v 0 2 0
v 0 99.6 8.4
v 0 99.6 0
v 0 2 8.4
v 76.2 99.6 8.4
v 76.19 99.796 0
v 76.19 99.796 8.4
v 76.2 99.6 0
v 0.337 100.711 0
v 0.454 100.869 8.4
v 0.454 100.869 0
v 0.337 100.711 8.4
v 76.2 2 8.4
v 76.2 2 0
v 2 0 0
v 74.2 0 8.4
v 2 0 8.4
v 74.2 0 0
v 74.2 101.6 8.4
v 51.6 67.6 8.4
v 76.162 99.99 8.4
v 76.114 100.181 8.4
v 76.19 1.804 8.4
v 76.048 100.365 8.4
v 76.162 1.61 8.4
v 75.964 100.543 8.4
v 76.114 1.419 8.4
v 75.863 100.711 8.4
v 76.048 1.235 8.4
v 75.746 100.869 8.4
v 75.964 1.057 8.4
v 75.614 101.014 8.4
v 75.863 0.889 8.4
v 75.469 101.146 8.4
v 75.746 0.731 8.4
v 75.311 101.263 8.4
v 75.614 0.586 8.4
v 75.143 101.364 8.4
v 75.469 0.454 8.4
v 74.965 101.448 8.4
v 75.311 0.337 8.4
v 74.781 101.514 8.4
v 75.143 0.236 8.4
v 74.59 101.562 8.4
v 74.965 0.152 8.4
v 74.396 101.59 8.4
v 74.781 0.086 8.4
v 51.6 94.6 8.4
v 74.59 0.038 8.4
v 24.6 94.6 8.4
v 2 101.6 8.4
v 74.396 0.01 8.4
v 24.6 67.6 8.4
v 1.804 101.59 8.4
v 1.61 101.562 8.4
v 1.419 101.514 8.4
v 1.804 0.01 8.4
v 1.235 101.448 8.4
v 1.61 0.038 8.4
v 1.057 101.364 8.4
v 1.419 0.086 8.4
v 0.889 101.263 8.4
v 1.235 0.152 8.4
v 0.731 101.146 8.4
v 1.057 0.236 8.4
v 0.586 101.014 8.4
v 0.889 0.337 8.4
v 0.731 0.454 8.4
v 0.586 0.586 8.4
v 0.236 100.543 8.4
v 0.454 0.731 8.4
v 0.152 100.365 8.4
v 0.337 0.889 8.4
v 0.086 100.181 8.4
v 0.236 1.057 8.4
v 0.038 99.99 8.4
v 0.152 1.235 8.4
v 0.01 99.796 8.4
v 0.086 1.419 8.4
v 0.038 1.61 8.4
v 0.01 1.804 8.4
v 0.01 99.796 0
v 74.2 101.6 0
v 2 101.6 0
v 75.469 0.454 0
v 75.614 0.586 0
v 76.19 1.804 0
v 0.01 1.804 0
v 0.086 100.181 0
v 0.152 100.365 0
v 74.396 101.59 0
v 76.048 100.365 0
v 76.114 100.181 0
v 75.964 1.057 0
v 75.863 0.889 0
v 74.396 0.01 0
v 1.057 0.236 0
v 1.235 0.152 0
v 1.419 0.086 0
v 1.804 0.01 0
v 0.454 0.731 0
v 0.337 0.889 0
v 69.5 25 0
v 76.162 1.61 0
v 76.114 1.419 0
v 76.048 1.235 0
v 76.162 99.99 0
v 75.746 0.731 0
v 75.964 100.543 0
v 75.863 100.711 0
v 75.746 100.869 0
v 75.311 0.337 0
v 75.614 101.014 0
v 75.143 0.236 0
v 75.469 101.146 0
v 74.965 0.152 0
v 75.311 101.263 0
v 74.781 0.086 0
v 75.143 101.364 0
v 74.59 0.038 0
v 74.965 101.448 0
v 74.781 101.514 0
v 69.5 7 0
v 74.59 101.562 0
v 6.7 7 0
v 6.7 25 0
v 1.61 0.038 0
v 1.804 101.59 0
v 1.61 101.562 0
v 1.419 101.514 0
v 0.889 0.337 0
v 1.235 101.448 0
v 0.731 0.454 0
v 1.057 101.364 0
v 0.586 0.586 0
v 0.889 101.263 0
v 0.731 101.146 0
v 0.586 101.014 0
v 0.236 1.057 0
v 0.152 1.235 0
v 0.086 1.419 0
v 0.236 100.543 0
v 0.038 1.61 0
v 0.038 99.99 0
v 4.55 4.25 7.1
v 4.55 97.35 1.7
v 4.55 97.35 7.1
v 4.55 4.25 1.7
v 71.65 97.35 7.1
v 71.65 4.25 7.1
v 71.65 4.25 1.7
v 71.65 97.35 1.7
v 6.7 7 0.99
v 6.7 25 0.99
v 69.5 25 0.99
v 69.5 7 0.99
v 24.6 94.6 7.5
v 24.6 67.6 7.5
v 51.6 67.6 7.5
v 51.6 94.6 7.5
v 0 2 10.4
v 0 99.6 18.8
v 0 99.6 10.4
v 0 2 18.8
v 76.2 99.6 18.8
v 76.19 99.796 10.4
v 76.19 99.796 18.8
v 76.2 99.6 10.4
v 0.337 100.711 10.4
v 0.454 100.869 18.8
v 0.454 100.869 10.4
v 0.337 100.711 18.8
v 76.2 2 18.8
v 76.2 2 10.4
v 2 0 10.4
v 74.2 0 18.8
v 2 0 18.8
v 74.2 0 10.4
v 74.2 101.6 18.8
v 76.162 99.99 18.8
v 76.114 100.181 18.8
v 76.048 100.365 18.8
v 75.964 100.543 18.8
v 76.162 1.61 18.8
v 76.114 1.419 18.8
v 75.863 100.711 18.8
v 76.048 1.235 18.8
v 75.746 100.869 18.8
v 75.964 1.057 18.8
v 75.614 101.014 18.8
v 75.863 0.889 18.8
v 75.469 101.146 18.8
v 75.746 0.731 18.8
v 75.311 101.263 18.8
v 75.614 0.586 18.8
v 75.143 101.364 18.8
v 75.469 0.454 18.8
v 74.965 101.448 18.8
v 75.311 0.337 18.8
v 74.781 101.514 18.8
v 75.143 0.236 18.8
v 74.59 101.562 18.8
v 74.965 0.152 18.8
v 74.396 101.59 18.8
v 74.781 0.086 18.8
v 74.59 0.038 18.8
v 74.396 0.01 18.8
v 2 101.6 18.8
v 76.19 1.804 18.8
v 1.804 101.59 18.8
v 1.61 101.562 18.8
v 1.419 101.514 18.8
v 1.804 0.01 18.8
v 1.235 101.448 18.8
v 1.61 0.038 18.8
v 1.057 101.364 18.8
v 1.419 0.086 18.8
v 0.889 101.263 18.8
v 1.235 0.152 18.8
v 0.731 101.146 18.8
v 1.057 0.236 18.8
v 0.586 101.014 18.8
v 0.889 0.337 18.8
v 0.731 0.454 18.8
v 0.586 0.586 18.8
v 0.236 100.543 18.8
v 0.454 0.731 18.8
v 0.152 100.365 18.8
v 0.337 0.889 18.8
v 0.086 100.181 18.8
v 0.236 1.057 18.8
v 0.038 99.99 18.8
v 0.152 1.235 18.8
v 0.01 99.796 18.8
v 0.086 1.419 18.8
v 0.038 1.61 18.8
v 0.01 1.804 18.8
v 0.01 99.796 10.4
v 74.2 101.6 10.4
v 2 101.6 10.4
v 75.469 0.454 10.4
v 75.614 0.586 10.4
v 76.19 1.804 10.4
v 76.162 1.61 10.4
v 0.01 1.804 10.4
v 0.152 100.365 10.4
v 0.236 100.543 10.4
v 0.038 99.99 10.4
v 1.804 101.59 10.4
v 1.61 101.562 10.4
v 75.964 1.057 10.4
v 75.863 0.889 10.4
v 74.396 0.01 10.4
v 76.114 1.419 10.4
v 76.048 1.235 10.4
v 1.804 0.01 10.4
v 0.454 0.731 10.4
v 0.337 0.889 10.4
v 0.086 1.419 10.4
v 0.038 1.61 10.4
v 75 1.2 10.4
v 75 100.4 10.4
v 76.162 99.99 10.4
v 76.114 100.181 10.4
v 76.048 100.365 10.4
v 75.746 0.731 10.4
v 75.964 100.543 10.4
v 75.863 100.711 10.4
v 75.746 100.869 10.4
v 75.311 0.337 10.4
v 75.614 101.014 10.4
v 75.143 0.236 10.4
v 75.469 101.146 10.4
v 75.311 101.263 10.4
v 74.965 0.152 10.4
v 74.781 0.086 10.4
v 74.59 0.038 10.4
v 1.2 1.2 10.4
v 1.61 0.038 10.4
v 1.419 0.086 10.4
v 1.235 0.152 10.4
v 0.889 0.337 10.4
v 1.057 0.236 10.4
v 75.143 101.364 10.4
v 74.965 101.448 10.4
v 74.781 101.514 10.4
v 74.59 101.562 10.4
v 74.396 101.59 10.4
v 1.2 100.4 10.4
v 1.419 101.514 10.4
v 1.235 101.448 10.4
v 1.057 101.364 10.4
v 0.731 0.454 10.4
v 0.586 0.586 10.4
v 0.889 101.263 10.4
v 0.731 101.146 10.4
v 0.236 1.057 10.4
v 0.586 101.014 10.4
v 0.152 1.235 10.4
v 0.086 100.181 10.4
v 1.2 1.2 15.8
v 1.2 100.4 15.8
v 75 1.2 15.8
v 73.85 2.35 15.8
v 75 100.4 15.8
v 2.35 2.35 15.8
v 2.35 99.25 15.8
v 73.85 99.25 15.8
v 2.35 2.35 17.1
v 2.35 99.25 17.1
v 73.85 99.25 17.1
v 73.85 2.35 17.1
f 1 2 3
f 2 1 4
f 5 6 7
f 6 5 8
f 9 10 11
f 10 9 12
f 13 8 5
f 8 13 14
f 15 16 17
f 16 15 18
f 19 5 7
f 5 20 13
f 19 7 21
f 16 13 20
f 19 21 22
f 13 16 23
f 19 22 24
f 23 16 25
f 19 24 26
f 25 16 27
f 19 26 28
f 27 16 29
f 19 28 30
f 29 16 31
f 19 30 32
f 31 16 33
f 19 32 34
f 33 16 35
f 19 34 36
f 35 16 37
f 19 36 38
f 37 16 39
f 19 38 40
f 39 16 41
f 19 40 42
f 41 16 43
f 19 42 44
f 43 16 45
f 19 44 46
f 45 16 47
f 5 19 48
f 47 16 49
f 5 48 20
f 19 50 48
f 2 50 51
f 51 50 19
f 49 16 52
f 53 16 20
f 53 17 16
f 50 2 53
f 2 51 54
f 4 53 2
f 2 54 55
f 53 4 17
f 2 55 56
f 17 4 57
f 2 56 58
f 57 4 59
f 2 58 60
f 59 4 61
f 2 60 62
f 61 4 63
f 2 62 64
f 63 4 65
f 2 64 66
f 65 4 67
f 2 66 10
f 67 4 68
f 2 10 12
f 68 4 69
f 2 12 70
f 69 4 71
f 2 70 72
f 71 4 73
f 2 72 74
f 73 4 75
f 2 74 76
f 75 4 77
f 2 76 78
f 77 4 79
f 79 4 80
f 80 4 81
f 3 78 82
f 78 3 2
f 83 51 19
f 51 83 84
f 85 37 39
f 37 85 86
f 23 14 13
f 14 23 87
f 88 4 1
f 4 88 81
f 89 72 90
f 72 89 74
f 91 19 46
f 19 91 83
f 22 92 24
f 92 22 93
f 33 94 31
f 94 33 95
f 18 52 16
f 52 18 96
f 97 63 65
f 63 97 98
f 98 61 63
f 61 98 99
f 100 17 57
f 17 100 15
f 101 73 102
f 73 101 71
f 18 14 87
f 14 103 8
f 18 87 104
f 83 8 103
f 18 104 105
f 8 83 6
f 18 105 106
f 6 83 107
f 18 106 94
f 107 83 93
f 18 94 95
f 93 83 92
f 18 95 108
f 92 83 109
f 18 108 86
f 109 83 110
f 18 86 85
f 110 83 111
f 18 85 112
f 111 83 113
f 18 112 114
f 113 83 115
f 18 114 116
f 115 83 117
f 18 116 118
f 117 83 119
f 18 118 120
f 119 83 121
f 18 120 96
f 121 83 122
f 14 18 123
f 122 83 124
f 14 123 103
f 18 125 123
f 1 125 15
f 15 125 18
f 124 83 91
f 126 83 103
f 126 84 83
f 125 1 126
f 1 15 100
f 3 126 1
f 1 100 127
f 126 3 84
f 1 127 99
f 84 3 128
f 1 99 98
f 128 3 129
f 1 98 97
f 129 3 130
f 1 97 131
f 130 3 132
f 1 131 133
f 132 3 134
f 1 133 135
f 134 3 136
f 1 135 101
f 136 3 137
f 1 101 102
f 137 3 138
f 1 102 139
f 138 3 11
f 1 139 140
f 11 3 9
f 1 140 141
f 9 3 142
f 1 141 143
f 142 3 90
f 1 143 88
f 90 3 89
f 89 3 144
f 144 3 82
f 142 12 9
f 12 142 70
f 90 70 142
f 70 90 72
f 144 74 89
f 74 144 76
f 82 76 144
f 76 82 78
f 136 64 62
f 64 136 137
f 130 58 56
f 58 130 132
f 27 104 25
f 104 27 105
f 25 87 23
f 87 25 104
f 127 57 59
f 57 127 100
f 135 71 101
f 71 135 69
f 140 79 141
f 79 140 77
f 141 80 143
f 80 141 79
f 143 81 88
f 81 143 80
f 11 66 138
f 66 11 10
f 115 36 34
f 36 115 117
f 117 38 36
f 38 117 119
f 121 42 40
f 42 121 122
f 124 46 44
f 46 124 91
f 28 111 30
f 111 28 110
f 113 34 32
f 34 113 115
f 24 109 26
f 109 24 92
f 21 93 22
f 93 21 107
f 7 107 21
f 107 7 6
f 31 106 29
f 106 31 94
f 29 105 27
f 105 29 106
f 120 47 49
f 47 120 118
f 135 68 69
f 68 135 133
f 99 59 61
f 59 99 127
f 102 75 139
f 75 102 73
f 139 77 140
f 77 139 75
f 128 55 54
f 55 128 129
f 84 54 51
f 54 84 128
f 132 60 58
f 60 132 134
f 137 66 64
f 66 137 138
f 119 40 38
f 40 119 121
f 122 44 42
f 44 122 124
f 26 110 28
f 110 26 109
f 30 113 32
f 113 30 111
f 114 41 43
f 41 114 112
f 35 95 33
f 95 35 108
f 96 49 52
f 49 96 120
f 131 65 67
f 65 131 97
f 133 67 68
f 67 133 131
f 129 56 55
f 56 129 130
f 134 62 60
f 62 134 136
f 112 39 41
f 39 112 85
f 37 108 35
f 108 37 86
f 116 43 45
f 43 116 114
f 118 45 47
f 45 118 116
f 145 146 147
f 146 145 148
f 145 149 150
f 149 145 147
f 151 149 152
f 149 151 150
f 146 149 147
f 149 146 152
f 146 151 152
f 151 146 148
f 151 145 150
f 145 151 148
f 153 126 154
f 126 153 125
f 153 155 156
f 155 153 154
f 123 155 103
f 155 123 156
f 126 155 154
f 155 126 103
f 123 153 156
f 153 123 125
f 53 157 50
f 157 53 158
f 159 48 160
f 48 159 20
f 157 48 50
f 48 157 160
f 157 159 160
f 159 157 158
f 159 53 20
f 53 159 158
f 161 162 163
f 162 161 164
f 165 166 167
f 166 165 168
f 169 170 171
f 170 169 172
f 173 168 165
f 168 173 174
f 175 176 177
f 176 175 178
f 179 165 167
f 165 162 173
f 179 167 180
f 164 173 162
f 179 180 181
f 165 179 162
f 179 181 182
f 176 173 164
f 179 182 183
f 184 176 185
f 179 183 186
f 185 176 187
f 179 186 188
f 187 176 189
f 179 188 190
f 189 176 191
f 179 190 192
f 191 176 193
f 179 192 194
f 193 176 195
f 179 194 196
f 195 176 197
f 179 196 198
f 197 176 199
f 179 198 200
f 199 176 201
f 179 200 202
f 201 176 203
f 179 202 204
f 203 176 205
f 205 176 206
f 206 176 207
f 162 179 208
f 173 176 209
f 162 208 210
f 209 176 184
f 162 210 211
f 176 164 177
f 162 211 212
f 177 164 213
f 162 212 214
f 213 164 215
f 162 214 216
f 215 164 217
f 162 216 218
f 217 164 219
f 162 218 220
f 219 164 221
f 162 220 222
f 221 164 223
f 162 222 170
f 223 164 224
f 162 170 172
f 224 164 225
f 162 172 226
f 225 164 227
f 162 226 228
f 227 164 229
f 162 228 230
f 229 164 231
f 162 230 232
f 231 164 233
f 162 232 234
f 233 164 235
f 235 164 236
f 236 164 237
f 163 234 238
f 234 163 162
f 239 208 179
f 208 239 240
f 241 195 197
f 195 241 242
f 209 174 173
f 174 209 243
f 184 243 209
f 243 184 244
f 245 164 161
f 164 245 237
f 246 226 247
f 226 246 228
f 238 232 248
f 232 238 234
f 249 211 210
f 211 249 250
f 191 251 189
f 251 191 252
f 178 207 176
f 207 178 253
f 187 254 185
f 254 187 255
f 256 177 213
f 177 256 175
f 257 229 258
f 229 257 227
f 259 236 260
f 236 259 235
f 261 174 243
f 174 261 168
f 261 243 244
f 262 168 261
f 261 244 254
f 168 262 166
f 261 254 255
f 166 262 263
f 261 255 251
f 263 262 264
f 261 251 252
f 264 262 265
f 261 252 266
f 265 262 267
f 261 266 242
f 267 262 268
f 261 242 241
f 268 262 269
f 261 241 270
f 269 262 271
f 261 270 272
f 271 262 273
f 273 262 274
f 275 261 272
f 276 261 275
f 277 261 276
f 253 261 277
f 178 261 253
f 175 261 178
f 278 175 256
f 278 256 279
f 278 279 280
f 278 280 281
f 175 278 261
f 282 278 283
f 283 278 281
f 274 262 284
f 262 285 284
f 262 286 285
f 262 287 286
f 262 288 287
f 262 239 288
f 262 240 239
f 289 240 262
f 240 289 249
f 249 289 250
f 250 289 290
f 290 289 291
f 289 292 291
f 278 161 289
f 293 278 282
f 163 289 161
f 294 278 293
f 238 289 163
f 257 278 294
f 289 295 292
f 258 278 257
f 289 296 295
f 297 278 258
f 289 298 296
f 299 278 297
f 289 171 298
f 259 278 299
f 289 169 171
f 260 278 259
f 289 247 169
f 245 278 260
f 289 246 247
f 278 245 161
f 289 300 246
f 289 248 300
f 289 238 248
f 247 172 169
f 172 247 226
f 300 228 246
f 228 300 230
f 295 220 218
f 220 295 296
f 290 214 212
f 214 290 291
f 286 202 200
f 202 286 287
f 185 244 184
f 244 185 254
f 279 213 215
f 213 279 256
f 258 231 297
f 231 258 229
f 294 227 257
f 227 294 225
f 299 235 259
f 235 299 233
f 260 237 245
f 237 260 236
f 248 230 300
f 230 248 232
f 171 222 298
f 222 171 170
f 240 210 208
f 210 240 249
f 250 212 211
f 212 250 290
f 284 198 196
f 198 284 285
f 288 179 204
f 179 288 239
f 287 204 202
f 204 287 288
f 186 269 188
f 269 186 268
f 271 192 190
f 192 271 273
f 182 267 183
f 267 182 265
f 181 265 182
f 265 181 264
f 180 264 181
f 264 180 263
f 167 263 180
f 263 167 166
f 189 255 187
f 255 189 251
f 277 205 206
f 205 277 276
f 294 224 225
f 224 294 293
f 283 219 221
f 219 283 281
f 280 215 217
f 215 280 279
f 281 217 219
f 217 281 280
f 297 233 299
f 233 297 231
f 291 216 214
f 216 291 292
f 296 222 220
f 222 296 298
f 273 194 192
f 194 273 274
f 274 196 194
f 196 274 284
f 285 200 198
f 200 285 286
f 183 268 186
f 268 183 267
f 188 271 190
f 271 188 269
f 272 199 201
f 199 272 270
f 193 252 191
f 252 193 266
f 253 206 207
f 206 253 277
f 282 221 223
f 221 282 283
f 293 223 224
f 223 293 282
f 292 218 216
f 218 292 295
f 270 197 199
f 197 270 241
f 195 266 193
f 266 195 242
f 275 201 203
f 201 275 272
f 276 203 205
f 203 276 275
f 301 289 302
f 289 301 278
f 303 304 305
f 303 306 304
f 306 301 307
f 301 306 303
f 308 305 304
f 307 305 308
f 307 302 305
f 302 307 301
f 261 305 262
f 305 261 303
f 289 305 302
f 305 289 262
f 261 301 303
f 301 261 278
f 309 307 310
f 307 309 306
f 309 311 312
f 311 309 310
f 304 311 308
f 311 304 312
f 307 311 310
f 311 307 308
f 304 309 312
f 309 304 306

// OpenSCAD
// =============================================
// HoloCase V6 - Final Dimension Locked Version
// Outer: 3" x 4" | Good fit for 35pt + sleeve
// =============================================

/* [Render Mode] */
// "base", "lid", or "both"
render_what = "both";

/* [Locked Outer Dimensions] */
width     = 76.2;     // Exactly 3 inches
height    = 101.6;    // Exactly 4 inches
thickness = 8.4;      // Slightly thicker for rigidity

/* [Card Cavity - Tuned for standard trading cards] */
card_width     = 66.0;   // ~2.6 inches
card_height    = 92.0;   // ~3.62 inches
card_thickness = 2.4;
clearance      = 0.55;   // Comfortable but not sloppy

/* [Lid] */
lid_overlap = 5.0;
wall        = 1.7;
side_wall   = 1.5;       // Slightly thinner sides for slim profile

/* [Features] */
label_depth = 0.9;
qr_size     = 27;
qr_depth    = 0.9;

/* [Rounding] */
corner_r = 2.0;

module rounded_box(w, h, t, r) {
    hull() {
        translate([r, r, 0]) cylinder(r=r, h=t, $fn=64);
        translate([w-r, r, 0]) cylinder(r=r, h=t, $fn=64);
        translate([r, h-r, 0]) cylinder(r=r, h=t, $fn=64);
        translate([w-r, h-r, 0]) cylinder(r=r, h=t, $fn=64);
    }
}

module base() {
    difference() {
        rounded_box(width, height, thickness, corner_r);
        
        // Card cavity
        translate([
            (width - card_width - clearance*2)/2,
            (height - card_height - clearance*2)/2,
            wall
        ])
        cube([card_width + clearance*2, card_height + clearance*2, card_thickness + 3]);
        
        // Label recess (front bottom)
        translate([wall + 5, 7, -0.01])
        cube([width - wall*2 - 10, 18, label_depth + 0.1]);
        
        // QR recess (back)
        translate([(width - qr_size)/2, height - qr_size - 7, thickness - qr_depth])
        cube([qr_size, qr_size, qr_depth + 0.1]);
    }
}

module lid() {
    difference() {
        rounded_box(width, height, thickness, corner_r);
        
        // Main overlap
        translate([side_wall - 0.3, side_wall - 0.3, -0.1])
        cube([
            width - side_wall*2 + 0.6,
            height - side_wall*2 + 0.6,
            lid_overlap + 0.5
        ]);
        
        // Internal seating step
        translate([side_wall + 0.85, side_wall + 0.85, lid_overlap - 1.5])
        cube([
            width - side_wall*2 - 1.7,
            height - side_wall*2 - 1.7,
            3.2
        ]);
    }
}

// Render
if (render_what == "base" || render_what == "both") {
    color("Gold") base();
}

if (render_what == "lid" || render_what == "both") {
    translate([0, 0, thickness + 2])
    color("DeepSkyBlue") lid();
}
